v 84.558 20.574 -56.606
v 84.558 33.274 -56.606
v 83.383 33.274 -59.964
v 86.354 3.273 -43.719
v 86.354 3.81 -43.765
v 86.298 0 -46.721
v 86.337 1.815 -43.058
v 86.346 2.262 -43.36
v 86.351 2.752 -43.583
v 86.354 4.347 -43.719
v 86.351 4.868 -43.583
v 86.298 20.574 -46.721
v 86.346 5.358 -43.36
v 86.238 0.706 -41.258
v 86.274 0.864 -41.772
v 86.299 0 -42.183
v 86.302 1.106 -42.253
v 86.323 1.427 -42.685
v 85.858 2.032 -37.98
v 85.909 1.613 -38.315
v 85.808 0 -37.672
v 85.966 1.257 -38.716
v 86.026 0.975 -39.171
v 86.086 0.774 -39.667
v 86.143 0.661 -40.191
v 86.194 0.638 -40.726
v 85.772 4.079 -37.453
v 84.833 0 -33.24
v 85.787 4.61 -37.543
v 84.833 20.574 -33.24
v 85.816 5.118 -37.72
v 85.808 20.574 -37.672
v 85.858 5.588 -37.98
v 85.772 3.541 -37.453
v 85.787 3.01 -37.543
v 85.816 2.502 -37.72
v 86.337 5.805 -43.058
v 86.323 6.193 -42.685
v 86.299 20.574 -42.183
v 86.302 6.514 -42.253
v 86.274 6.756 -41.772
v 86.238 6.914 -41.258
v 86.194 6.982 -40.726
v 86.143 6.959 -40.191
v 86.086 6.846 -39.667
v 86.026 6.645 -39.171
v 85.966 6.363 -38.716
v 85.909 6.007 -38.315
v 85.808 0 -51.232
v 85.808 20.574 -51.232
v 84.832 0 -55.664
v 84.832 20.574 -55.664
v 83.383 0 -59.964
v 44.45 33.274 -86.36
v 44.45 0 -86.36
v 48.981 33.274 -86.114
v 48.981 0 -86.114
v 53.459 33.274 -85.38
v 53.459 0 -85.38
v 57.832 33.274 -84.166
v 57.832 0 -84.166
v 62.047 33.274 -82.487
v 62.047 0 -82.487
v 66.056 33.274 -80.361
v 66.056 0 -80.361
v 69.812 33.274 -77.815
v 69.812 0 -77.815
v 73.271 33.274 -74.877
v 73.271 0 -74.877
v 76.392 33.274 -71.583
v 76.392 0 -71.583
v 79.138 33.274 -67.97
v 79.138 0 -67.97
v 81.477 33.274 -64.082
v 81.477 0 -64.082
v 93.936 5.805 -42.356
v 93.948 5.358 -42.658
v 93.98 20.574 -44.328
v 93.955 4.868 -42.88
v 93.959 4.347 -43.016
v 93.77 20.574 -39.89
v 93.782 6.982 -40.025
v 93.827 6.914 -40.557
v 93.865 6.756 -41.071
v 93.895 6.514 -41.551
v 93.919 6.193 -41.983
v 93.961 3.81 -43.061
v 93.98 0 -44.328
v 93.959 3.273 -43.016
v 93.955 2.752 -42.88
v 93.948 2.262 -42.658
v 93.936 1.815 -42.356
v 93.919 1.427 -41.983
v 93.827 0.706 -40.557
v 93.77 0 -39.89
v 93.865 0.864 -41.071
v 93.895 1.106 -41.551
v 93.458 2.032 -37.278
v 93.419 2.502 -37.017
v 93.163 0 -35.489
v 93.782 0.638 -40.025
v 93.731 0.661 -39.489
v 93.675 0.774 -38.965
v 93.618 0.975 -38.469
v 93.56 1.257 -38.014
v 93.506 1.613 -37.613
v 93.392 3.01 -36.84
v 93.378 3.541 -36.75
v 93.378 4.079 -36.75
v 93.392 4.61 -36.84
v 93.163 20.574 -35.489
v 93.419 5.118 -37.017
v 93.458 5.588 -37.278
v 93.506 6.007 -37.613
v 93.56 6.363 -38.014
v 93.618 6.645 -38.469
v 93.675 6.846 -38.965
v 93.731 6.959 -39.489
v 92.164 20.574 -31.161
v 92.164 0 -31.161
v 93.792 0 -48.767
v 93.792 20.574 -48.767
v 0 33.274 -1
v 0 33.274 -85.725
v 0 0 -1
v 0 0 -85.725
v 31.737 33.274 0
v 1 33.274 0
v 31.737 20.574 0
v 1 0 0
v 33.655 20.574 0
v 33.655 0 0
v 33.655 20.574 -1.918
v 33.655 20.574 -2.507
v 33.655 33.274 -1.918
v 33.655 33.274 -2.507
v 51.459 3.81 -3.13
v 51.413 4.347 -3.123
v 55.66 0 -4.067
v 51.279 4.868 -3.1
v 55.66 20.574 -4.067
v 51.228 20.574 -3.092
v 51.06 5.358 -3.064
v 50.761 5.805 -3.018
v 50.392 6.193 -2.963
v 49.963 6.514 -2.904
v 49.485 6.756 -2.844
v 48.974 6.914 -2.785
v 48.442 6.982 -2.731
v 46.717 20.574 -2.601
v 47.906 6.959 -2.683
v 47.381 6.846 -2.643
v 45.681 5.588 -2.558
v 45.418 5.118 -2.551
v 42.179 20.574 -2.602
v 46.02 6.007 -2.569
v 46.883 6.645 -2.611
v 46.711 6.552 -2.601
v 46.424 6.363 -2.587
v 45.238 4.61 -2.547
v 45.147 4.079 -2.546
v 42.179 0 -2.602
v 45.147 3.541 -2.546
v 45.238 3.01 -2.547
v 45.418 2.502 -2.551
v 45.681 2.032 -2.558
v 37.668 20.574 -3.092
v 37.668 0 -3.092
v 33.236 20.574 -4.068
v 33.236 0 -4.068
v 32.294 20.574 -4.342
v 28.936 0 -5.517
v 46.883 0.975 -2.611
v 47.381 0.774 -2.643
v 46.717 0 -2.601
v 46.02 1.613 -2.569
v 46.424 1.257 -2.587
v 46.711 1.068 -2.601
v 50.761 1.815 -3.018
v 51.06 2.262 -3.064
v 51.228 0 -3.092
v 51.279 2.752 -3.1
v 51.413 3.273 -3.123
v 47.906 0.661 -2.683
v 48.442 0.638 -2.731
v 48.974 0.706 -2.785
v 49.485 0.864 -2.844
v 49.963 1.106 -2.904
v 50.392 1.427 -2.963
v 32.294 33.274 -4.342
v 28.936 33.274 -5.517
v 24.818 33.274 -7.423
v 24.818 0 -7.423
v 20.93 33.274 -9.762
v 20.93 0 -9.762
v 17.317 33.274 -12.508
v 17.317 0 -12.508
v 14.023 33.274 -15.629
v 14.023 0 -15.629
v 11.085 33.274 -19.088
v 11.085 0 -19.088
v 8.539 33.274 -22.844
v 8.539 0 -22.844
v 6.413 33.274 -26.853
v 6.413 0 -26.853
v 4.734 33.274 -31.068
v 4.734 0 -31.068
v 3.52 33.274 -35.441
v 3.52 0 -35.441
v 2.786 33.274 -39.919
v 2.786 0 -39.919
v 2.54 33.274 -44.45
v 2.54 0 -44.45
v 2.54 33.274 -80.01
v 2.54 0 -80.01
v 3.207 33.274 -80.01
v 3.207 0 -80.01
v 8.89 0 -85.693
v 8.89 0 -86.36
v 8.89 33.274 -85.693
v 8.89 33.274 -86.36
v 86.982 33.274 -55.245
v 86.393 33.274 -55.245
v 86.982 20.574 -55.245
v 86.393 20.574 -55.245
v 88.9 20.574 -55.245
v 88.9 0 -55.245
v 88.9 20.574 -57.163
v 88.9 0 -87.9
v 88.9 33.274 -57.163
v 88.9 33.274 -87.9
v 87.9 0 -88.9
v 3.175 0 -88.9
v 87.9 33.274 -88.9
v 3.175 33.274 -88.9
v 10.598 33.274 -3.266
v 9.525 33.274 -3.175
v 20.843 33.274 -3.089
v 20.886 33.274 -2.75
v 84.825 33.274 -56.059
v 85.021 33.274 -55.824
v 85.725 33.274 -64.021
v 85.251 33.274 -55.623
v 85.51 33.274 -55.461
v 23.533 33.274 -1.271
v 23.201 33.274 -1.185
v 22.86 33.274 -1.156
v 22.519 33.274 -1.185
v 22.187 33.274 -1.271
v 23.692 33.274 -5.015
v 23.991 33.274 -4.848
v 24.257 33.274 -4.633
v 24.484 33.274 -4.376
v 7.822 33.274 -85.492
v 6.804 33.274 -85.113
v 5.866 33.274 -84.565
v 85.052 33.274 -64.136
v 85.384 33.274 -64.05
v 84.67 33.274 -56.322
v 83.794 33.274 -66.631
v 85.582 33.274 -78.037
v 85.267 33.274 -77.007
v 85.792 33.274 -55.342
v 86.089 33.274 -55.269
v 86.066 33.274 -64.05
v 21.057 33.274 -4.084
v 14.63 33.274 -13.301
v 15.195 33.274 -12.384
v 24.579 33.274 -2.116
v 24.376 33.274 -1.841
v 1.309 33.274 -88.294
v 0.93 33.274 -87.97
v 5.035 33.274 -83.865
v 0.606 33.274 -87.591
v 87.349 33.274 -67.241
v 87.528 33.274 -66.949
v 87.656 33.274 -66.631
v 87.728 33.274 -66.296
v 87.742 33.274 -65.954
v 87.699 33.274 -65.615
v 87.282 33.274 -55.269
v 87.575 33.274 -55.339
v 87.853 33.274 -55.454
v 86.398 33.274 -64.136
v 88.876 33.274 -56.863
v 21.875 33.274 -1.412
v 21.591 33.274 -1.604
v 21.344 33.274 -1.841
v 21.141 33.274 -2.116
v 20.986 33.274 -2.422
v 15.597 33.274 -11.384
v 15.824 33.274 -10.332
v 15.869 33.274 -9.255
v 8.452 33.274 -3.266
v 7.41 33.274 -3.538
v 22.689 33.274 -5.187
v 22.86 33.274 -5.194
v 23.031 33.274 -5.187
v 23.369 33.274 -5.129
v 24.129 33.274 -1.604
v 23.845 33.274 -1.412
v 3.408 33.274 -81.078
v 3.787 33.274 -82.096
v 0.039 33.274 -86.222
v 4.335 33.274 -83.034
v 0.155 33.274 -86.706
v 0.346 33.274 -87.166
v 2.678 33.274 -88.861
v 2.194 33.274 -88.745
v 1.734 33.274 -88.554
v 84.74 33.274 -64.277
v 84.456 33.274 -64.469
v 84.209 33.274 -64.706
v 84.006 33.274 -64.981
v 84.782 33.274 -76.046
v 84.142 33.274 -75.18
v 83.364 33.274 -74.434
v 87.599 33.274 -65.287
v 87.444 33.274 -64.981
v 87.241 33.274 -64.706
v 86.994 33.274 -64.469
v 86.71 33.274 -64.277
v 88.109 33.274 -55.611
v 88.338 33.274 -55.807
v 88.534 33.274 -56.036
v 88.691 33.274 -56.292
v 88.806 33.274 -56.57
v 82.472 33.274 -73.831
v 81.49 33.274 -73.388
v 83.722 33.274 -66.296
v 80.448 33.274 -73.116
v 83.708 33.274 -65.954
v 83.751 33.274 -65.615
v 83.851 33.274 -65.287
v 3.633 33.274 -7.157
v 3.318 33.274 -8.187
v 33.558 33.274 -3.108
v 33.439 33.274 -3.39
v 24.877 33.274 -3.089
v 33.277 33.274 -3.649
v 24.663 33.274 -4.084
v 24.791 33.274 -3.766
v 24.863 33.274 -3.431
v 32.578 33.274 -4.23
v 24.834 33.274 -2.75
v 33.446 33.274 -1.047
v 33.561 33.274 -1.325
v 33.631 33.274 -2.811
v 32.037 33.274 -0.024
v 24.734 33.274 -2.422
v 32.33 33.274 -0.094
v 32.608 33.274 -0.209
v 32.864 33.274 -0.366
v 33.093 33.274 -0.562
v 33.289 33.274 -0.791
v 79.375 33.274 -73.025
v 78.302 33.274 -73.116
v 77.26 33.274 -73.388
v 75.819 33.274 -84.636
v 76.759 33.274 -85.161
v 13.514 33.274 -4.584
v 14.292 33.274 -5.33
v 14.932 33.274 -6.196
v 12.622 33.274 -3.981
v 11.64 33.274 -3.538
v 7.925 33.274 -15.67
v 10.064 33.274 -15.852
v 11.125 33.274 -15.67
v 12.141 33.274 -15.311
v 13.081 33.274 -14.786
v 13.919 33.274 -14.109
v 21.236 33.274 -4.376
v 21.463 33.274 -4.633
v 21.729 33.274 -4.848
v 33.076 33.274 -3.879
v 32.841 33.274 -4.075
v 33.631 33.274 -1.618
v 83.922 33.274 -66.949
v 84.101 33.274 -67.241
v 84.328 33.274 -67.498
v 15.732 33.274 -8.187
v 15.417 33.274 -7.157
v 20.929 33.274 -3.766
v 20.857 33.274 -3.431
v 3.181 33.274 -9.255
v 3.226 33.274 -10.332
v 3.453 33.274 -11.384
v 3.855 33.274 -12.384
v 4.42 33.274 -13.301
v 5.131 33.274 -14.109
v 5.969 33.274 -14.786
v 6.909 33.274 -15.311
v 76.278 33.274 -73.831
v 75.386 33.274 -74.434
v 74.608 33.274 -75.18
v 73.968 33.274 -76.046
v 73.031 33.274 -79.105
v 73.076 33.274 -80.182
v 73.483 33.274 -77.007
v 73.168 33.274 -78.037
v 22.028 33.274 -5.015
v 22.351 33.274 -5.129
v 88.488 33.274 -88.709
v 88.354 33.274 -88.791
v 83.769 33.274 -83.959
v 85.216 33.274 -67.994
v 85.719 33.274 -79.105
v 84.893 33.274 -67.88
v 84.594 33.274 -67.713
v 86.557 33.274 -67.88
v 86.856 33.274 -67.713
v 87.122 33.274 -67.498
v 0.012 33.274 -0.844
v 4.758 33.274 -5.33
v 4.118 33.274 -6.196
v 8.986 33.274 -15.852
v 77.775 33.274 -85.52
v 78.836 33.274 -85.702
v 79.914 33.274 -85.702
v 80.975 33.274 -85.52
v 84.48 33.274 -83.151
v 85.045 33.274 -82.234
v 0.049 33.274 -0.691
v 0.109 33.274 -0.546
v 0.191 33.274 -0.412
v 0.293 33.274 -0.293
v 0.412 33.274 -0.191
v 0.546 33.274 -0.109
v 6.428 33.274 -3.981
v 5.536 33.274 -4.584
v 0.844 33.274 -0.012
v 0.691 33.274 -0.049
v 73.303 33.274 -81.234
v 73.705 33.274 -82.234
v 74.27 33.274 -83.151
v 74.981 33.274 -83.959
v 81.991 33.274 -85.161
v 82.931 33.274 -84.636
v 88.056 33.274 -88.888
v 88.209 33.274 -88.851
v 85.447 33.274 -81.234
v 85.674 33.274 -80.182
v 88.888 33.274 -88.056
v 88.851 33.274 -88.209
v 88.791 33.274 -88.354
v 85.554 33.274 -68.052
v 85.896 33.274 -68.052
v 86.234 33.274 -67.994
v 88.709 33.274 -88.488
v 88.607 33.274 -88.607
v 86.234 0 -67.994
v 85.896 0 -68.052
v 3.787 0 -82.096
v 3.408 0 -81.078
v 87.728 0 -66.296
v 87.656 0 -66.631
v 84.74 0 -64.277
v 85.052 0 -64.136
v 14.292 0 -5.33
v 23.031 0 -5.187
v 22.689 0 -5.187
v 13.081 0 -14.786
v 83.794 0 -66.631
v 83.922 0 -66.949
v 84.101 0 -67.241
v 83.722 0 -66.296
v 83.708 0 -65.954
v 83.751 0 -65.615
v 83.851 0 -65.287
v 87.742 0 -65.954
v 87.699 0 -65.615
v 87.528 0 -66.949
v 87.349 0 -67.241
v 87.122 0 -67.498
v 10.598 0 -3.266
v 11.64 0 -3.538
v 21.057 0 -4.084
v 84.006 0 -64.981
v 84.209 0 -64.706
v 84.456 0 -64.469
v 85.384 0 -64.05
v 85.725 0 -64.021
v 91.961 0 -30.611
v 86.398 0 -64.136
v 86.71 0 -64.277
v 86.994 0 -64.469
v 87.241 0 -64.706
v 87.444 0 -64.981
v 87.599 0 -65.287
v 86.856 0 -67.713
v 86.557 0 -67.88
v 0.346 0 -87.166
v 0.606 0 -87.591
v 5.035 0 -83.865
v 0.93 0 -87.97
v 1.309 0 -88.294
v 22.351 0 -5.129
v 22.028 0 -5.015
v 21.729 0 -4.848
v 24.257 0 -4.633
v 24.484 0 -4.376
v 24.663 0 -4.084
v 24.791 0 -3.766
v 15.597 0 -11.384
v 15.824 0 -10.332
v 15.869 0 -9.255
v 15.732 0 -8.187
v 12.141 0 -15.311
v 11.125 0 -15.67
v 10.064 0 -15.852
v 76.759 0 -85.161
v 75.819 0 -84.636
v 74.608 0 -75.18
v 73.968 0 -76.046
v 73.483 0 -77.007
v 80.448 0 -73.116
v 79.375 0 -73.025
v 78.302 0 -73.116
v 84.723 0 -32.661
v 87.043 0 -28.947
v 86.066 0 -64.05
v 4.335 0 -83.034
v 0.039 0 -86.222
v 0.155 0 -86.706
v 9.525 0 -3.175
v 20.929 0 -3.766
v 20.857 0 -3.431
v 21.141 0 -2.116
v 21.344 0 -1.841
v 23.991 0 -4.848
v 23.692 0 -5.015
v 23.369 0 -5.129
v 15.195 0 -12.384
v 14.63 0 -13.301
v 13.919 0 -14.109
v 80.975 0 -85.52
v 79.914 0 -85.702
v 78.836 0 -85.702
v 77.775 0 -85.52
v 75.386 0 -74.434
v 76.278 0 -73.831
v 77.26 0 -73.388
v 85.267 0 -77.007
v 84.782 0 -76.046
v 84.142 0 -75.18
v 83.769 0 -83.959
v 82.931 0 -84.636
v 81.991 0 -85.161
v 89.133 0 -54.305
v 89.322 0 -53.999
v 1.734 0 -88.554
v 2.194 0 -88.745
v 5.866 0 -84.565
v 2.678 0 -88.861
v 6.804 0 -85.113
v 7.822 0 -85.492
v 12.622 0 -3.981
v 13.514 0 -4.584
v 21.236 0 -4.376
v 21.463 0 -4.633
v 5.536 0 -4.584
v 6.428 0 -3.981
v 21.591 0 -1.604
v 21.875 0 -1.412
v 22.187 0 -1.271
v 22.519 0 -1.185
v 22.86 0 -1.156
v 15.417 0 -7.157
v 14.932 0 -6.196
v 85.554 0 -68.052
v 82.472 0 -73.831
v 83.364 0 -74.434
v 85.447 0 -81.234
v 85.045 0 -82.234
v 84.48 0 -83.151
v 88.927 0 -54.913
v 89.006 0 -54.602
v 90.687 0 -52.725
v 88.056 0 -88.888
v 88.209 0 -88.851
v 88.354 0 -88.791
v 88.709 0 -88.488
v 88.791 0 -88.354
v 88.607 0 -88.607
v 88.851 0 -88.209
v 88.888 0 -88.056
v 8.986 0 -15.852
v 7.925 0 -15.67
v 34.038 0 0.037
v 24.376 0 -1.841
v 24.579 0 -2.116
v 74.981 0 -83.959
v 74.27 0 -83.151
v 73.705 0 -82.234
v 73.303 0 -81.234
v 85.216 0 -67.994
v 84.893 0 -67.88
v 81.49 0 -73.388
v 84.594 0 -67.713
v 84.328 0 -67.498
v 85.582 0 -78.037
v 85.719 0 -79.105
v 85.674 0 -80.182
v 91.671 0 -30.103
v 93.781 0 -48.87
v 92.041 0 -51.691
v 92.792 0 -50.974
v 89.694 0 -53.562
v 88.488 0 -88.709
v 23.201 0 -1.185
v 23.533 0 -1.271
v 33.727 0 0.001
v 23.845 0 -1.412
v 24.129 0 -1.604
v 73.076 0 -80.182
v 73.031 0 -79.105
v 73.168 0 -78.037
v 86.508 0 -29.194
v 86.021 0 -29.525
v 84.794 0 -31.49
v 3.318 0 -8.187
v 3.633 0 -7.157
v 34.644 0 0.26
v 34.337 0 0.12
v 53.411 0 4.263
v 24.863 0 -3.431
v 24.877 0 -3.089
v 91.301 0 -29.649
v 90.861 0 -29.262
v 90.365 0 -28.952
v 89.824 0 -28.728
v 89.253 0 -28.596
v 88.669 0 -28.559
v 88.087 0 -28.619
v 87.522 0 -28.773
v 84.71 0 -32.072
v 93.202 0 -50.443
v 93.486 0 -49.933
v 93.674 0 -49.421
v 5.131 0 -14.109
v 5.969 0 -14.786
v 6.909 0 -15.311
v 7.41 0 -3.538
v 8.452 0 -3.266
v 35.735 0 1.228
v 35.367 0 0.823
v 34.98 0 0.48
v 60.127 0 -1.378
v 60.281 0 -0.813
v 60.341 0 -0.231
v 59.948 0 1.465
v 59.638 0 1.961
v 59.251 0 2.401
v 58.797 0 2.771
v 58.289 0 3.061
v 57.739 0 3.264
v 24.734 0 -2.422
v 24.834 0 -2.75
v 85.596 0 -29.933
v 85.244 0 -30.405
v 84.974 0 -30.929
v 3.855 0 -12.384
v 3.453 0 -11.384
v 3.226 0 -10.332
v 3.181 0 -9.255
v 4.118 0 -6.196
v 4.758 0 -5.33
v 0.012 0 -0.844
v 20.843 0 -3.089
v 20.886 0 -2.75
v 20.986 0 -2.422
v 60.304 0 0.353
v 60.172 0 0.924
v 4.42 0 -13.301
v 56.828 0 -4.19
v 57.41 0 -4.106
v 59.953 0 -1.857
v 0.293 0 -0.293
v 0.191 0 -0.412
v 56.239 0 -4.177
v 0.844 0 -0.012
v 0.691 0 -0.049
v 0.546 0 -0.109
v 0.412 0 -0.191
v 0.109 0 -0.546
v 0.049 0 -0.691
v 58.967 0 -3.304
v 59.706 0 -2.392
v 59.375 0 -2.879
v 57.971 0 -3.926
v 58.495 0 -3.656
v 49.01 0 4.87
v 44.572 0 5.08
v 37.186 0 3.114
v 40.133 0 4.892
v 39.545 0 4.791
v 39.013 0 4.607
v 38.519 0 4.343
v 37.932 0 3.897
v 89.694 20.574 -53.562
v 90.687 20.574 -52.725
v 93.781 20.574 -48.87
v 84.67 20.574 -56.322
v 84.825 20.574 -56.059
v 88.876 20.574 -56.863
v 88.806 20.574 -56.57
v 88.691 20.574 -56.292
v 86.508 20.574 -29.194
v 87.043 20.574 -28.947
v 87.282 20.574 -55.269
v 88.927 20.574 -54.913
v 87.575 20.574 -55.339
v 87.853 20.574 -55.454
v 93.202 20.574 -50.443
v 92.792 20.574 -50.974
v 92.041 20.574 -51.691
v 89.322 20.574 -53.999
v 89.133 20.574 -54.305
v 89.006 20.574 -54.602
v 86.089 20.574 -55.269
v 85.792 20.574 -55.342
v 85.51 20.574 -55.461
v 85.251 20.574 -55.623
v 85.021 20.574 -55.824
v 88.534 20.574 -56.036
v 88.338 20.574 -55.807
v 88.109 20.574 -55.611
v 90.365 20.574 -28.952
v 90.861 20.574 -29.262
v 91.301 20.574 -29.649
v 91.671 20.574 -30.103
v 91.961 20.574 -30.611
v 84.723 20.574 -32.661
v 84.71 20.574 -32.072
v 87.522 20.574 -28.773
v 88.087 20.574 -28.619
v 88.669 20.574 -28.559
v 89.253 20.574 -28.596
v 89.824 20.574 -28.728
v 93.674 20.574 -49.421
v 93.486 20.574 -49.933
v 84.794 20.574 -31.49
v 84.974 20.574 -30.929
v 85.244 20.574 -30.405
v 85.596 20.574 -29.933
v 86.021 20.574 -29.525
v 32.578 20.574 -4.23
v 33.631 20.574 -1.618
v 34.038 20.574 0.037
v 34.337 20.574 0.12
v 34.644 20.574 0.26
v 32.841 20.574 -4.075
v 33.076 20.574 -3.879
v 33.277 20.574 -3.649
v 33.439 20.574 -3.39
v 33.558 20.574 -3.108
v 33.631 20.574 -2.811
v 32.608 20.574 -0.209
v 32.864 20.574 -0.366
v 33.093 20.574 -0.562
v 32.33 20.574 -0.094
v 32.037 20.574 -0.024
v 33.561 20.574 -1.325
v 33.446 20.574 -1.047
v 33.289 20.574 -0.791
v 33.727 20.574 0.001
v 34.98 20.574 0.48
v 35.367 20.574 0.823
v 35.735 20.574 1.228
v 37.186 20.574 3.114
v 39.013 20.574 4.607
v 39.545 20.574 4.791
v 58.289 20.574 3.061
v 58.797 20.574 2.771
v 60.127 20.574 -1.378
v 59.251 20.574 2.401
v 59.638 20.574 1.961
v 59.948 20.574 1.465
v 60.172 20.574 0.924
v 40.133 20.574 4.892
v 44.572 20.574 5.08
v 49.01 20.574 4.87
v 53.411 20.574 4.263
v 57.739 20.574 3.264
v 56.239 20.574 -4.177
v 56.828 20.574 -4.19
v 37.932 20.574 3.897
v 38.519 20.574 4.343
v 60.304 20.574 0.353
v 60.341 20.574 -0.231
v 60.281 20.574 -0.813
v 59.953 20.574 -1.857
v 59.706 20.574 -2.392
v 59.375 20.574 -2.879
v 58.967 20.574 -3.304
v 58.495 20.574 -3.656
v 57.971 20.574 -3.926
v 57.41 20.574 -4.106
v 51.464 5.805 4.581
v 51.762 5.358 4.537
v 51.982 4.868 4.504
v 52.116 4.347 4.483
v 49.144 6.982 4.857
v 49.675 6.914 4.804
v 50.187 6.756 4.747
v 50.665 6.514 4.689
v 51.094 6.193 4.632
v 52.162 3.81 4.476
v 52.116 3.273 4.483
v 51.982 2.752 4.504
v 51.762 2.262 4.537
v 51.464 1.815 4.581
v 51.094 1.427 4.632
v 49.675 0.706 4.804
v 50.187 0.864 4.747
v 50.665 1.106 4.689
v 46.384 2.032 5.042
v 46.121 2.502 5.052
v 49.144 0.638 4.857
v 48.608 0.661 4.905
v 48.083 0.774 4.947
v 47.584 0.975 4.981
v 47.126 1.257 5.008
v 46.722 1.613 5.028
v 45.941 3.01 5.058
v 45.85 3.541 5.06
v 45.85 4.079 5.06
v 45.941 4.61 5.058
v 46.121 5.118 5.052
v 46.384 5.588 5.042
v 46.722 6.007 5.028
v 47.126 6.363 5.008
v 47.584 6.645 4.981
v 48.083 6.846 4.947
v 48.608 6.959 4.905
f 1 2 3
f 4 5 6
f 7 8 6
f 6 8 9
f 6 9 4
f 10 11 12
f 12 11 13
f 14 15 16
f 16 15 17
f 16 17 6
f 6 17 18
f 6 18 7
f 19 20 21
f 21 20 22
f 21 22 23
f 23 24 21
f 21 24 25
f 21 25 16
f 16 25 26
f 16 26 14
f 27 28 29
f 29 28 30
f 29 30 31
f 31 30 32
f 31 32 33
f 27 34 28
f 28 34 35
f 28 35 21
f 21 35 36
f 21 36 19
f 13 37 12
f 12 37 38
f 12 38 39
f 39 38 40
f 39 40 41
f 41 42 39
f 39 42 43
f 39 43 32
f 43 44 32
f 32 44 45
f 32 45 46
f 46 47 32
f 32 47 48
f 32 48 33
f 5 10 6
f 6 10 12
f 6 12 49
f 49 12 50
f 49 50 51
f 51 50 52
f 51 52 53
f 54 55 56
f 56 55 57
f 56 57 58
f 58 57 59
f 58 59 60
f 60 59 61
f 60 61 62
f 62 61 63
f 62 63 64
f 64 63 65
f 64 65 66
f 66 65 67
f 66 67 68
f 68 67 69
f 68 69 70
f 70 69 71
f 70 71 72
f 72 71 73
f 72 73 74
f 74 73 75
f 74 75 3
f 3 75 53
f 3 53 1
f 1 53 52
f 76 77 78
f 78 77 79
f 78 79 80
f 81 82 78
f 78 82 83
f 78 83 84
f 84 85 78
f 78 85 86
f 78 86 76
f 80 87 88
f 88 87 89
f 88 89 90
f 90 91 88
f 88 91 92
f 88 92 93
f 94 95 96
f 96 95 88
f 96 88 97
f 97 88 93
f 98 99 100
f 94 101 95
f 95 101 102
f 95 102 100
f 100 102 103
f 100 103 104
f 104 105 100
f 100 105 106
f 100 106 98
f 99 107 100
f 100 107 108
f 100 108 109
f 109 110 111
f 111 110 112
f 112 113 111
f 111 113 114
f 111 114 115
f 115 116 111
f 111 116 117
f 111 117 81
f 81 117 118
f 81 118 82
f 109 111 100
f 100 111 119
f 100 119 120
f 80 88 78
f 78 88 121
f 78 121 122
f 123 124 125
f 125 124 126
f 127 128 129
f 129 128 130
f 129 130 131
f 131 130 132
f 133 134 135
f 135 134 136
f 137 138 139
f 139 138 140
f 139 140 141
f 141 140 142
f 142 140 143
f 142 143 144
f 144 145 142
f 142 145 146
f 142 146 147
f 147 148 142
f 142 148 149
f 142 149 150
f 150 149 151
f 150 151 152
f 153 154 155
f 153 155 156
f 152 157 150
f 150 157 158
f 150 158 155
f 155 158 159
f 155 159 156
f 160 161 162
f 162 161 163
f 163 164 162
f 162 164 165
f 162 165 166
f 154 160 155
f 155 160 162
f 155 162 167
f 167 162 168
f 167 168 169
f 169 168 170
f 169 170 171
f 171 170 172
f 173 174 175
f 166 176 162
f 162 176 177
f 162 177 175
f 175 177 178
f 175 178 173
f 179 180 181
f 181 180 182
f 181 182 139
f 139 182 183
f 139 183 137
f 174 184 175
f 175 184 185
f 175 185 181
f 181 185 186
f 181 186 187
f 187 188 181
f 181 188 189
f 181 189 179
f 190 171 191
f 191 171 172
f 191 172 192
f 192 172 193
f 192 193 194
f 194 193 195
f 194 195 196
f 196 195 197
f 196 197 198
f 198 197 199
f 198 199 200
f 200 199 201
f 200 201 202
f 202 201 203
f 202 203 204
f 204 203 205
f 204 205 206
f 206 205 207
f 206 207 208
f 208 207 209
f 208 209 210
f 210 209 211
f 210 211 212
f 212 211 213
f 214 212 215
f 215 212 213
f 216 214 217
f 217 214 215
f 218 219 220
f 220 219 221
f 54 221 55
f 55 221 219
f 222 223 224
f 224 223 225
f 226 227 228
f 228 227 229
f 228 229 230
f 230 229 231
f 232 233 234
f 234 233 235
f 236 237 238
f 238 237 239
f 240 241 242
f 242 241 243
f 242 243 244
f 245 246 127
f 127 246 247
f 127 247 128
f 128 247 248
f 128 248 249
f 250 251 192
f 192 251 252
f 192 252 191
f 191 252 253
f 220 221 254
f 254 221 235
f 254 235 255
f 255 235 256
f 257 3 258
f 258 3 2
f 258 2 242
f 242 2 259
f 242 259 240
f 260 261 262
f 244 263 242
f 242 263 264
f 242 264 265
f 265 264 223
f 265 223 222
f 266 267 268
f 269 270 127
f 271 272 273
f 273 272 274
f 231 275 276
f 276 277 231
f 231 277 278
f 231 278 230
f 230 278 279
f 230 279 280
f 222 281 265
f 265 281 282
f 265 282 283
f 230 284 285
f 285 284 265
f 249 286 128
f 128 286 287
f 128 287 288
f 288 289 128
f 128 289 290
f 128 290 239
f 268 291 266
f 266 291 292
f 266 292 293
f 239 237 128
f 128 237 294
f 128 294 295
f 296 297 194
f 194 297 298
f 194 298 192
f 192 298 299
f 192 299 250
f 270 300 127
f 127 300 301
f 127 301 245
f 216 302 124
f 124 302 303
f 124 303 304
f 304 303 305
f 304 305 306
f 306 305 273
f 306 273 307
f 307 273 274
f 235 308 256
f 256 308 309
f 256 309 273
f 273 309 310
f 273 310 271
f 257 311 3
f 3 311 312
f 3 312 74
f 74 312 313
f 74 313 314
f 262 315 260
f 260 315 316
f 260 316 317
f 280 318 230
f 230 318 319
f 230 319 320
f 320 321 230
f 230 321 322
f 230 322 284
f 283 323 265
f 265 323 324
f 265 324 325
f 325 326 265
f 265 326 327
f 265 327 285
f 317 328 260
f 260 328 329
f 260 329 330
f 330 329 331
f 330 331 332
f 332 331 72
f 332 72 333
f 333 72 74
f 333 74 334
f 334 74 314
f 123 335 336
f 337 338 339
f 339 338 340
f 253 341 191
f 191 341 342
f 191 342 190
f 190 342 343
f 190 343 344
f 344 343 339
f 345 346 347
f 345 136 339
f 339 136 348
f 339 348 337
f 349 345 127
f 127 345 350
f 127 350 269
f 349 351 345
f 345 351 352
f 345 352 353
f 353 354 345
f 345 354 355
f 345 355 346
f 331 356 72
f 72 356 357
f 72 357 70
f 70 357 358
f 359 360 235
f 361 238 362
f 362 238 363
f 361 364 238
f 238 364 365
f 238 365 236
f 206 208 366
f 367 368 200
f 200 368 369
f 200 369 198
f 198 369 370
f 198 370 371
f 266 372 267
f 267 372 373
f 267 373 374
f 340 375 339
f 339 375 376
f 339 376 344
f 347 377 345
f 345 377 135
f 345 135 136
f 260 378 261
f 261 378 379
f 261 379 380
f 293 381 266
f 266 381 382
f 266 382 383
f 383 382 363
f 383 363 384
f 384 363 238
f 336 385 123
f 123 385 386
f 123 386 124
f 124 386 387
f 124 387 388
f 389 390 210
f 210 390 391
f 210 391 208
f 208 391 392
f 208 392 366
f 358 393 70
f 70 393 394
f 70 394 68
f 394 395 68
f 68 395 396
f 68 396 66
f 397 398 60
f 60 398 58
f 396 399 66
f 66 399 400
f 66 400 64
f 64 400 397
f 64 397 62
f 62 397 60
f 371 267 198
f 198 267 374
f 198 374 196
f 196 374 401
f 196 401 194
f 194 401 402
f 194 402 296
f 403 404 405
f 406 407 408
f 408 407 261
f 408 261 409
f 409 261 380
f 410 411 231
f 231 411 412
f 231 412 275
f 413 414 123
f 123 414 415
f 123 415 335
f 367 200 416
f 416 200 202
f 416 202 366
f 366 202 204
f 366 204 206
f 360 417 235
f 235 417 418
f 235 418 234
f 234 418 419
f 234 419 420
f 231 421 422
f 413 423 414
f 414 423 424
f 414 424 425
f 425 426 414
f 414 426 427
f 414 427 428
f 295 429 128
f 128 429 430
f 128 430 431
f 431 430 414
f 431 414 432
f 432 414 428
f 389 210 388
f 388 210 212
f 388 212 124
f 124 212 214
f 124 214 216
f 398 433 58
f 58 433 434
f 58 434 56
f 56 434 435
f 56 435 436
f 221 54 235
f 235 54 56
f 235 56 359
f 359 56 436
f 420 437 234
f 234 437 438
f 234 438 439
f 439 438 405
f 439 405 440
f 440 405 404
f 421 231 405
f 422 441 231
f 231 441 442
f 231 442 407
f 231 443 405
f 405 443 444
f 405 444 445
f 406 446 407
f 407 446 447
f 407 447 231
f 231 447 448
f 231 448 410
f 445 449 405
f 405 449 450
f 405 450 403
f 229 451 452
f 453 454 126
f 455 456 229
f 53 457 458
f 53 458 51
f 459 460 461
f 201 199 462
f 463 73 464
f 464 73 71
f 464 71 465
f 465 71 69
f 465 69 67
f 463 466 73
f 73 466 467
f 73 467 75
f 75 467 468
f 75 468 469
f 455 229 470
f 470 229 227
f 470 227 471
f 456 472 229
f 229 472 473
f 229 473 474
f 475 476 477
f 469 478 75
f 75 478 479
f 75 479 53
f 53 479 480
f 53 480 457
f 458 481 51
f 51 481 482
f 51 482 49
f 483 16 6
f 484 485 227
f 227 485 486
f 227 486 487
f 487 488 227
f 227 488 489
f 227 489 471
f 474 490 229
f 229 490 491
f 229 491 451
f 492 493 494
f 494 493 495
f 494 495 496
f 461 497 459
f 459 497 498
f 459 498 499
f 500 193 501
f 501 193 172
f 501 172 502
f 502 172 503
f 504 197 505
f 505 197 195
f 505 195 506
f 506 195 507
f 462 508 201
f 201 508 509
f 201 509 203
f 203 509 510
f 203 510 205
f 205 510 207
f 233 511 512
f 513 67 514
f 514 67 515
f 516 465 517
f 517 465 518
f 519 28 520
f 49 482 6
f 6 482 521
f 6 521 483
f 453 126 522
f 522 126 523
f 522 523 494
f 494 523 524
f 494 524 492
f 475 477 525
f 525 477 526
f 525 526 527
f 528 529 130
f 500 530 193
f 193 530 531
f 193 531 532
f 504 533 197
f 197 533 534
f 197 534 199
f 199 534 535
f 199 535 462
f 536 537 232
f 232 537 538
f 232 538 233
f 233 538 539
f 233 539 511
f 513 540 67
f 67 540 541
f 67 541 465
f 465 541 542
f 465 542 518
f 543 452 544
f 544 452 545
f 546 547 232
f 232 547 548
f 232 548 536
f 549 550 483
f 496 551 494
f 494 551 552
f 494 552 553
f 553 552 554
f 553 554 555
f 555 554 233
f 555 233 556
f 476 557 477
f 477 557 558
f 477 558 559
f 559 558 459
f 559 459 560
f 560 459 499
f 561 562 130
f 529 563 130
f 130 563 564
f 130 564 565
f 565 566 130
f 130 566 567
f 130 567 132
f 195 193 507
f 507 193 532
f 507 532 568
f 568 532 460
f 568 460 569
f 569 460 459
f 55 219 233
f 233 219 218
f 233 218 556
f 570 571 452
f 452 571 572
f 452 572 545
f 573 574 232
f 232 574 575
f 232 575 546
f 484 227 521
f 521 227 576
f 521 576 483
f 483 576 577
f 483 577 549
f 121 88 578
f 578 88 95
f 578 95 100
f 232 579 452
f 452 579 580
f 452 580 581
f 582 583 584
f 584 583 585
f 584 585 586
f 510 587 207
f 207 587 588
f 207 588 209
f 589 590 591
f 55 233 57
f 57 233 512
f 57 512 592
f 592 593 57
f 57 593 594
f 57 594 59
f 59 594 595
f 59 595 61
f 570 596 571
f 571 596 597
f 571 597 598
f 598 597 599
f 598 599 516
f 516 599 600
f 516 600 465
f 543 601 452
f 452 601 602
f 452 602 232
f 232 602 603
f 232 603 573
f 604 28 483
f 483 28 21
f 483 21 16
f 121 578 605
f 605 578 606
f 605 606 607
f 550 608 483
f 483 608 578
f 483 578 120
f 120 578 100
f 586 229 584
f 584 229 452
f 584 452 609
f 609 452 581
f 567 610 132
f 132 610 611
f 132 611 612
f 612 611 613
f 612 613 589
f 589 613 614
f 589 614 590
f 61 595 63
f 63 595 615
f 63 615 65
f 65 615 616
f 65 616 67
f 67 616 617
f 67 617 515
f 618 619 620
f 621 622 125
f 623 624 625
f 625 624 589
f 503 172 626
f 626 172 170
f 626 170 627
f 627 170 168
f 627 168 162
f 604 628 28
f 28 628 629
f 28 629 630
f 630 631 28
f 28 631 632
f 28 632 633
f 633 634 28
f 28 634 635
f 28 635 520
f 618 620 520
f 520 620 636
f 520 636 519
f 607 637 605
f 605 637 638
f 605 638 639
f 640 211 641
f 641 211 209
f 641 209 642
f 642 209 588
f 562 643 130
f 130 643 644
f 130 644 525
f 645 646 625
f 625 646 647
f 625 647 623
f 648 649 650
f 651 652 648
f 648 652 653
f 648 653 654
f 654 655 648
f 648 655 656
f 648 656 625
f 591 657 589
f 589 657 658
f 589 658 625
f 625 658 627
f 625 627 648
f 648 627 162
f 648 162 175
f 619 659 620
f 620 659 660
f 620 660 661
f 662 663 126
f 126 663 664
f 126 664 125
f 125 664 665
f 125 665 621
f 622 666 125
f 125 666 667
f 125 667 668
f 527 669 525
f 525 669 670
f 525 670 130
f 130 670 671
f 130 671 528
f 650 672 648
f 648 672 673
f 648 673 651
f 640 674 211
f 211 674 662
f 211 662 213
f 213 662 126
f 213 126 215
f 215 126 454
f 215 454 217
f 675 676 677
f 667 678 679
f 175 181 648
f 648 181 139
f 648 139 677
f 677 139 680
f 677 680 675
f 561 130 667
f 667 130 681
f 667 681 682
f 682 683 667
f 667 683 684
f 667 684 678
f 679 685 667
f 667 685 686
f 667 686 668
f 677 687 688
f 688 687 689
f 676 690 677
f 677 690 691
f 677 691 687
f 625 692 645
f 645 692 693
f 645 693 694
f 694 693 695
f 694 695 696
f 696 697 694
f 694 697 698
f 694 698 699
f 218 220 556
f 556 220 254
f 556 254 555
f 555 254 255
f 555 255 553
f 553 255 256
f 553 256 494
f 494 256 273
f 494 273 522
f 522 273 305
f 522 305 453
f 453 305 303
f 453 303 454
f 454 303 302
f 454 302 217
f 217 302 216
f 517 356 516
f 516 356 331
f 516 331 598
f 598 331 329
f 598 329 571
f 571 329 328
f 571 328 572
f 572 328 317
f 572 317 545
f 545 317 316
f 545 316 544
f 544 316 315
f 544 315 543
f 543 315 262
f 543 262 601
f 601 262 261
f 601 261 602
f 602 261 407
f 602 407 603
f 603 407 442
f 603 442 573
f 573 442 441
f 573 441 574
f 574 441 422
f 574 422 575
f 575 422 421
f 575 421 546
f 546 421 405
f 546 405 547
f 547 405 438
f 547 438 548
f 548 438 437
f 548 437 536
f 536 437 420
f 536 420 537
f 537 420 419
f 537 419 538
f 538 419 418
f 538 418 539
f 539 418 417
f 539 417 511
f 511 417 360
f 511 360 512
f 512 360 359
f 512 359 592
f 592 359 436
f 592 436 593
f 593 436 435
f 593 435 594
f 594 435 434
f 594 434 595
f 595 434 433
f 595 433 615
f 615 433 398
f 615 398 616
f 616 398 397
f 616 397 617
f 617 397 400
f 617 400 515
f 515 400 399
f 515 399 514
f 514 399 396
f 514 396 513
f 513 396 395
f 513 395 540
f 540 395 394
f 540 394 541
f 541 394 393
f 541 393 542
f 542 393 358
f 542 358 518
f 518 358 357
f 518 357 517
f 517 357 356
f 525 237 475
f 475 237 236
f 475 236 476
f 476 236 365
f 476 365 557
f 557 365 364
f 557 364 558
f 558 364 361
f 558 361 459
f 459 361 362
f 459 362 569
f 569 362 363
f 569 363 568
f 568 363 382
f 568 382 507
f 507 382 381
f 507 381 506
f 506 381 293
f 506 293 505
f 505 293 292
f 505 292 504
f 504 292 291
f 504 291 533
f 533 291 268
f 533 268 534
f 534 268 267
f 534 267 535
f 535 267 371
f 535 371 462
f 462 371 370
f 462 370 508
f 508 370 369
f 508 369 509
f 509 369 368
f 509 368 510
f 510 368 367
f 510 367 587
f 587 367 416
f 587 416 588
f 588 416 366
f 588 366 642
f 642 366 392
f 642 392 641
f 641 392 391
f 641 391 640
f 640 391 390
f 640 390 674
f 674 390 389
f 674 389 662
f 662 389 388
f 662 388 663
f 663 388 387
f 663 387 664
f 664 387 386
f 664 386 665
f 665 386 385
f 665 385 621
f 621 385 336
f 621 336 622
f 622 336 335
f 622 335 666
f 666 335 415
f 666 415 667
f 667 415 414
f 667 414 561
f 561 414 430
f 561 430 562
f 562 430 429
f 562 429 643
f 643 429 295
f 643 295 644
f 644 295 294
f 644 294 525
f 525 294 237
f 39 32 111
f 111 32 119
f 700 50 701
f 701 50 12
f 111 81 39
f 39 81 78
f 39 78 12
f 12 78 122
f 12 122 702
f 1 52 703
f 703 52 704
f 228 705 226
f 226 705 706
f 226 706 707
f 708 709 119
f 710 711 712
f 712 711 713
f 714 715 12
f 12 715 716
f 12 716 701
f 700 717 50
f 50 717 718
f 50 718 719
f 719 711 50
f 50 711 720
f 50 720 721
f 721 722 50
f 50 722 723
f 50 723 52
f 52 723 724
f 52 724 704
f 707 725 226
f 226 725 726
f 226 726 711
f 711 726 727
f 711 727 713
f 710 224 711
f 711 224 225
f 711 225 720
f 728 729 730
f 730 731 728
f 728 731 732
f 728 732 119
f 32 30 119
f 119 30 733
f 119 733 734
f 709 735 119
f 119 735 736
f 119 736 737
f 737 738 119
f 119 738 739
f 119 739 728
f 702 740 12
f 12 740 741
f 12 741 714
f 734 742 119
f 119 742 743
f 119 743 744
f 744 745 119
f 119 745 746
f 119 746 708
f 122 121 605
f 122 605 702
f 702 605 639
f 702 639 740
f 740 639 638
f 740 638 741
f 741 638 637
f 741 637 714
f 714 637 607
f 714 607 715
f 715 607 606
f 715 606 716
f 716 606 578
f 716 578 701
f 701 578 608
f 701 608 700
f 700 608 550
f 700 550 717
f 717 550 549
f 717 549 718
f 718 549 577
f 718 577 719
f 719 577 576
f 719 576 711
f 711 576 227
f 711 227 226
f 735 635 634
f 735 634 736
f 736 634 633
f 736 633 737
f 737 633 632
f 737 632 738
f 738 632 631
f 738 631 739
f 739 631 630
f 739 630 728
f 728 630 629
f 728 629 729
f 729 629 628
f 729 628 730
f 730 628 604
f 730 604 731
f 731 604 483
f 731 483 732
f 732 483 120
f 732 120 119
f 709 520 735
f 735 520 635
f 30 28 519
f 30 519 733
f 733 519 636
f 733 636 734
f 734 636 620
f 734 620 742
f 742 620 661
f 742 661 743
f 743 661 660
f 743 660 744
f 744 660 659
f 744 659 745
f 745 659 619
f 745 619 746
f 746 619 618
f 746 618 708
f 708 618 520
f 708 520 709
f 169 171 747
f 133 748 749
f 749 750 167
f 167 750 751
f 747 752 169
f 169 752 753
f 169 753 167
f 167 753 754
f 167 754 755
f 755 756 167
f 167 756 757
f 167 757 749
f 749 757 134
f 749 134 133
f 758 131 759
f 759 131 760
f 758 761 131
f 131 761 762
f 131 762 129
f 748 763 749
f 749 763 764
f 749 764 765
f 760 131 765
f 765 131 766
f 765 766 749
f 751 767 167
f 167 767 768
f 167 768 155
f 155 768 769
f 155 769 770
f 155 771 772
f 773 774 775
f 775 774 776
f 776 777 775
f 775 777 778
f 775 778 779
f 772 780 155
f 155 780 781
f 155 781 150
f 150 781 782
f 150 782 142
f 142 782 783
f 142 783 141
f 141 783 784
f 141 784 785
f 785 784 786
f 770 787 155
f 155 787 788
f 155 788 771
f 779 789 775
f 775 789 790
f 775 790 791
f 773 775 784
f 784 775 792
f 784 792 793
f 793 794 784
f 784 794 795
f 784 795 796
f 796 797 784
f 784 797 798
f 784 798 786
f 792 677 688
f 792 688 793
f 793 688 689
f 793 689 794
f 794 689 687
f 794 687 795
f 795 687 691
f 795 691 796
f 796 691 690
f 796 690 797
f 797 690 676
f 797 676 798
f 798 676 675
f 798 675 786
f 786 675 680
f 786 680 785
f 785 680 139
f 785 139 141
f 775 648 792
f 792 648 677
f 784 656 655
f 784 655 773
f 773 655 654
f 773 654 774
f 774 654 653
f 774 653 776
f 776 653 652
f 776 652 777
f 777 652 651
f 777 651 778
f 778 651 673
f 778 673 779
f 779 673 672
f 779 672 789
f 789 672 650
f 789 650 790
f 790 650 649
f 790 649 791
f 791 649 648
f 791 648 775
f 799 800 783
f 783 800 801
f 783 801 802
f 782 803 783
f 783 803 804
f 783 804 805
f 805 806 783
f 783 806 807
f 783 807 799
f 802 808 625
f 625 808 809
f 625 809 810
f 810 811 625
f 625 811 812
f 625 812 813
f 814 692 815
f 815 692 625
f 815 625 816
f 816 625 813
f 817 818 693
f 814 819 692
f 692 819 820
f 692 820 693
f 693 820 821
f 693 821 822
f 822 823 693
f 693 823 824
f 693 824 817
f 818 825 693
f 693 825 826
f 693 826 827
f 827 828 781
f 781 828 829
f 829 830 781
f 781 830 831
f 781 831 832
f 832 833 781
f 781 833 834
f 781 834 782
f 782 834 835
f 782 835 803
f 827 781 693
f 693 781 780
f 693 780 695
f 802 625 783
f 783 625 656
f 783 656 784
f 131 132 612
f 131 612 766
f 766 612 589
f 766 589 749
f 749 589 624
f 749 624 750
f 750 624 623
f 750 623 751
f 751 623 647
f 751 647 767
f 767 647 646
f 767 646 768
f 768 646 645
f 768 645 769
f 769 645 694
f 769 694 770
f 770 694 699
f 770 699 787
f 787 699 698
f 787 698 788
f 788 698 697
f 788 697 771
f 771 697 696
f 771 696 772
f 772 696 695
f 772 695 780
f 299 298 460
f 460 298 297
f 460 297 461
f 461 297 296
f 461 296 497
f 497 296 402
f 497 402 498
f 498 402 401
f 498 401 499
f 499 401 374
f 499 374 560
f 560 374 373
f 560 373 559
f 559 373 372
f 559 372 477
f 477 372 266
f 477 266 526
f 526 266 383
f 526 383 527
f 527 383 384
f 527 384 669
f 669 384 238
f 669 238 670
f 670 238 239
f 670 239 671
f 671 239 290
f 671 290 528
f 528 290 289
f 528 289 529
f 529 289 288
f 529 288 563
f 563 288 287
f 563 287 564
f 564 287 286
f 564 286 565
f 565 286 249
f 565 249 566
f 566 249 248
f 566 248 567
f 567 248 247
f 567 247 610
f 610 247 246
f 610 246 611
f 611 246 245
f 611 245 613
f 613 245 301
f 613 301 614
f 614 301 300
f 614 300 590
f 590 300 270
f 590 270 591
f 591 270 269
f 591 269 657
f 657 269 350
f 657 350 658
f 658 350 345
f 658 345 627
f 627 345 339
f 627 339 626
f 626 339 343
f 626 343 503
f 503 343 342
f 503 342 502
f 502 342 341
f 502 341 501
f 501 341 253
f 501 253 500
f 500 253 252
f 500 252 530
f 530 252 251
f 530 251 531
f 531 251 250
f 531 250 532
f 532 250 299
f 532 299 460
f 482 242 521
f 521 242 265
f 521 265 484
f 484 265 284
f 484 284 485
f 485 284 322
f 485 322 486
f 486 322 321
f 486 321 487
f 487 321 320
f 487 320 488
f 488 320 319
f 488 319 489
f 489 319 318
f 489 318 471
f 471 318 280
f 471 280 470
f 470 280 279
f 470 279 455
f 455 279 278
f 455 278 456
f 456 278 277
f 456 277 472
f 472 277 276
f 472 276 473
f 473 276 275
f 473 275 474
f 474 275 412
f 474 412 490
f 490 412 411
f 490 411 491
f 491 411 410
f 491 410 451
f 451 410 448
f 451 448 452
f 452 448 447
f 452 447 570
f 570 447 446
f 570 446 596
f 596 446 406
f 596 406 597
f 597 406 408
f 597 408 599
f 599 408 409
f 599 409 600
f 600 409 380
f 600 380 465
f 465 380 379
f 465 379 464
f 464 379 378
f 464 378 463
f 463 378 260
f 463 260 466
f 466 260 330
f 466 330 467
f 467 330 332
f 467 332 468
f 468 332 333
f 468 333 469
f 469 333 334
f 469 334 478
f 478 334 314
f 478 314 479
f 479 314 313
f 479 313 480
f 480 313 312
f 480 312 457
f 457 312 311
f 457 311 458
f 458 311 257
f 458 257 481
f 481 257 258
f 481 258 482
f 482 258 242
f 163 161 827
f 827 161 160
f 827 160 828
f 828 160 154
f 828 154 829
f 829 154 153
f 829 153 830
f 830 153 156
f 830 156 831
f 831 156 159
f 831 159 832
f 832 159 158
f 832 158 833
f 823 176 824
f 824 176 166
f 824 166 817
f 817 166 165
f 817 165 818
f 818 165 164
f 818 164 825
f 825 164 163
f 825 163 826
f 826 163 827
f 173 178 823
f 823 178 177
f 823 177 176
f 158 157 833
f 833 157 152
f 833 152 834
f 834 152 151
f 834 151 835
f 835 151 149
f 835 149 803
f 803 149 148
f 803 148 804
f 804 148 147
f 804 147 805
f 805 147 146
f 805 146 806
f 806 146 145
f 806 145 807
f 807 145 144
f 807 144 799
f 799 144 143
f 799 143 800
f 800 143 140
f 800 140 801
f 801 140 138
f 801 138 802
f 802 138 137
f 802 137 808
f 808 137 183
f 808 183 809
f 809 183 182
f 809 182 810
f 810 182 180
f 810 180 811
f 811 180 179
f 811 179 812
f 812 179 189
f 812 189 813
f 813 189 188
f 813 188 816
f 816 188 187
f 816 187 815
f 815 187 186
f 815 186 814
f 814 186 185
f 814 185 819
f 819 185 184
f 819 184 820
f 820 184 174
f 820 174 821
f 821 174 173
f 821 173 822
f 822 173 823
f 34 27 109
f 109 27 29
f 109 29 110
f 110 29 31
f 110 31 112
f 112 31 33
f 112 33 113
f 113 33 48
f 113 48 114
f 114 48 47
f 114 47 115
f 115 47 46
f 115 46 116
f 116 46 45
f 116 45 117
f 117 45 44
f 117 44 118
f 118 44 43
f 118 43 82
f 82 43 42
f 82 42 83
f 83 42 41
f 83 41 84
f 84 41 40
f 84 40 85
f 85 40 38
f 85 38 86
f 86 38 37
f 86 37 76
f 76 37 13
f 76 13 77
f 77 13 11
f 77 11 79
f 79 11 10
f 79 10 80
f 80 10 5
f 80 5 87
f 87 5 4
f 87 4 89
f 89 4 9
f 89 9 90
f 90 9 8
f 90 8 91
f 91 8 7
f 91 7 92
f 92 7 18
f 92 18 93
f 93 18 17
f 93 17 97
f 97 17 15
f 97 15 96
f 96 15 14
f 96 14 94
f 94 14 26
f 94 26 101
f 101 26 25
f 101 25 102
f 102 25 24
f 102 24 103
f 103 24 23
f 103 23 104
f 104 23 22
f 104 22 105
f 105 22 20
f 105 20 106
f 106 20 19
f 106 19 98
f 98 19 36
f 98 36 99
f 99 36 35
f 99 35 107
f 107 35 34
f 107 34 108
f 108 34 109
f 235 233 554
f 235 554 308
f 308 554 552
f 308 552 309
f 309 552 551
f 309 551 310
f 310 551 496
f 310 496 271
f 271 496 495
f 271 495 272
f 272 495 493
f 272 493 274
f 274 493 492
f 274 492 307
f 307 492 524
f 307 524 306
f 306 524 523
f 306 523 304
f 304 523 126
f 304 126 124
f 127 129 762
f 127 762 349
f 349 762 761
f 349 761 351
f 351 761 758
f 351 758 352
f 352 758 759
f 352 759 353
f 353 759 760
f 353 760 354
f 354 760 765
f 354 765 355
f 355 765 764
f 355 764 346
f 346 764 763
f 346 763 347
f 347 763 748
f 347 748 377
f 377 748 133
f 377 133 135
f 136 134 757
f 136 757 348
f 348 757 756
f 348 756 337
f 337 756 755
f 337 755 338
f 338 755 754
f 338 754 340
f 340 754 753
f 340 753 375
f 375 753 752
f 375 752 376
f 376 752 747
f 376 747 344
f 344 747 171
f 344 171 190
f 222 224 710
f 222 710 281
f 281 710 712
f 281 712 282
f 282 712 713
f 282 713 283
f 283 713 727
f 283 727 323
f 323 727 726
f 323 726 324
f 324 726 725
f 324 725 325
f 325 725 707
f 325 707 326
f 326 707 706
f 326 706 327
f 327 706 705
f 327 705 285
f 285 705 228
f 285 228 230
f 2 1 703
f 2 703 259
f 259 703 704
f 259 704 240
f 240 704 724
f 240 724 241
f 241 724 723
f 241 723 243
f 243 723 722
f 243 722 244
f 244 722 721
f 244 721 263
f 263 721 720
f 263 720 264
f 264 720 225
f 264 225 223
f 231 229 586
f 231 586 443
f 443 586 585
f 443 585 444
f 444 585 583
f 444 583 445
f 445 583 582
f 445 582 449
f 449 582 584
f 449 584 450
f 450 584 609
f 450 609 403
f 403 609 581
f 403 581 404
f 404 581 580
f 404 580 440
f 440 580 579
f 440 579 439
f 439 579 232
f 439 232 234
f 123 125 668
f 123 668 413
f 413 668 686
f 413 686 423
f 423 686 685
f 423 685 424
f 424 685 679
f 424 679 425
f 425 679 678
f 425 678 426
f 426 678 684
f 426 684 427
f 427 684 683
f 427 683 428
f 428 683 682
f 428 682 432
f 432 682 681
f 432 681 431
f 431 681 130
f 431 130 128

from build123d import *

# Parameters (mm, degrees)
BOSS_EXTRUDE1_DEPTH     = 33.274
SKETCH3_R               = 6.349999999999995
SKETCH3_R_2             = 6.349999999999994
SKETCH3_R_3             = 6.349999999999996
CUT_EXTRUDE1_DEPTH      = 131.05221672851255
BOSS_EXTRUDE2_DEPTH     = 20.574
SKETCH5_R               = 2.0193000000000074
SKETCH5_R_2             = 2.0193000000000025
CUT_EXTRUDE2_DEPTH      = 134.57623111628357
CUT_EXTRUDE3_REACH      = 109.787
CUT_EXTRUDE3_END_RADIUS = 41.90999999999999
SKETCH6_R               = 3.1750000000000003
FILLET1_R               = 3.175
FILLET2_R               = 1.9176999999999997
FILLET3_R               = 1


with BuildPart() as part:
    # Sketch1 → Boss-Extrude1 (new body)
    with BuildSketch(Plane(origin=(0, 0, 0), x_dir=(1, 0, 0), z_dir=(0, 1, 0))):
        with BuildLine():
            Line((0, 0), (33.655, 6.94e-15))
            Line((33.655, 6.94e-15), (33.655, 3.954122740703593))
            ThreePointArc((33.655, 3.954122740703593), (11.216985165351097, 18.91541903613836), (2.5400000000000076, 44.449999999999704))
            Line((2.5400000000000076, 44.449999999999704), (2.540000000000145, 80.00999999999985))
            Line((2.540000000000145, 80.00999999999985), (8.890000000000144, 80.00999999999985))
            Line((8.890000000000144, 80.00999999999985), (8.890000000000148, 86.36))
            Line((8.890000000000148, 86.36), (44.449999999999854, 86.35999999999999))
            ThreePointArc((44.449999999999854, 86.35999999999999), (69.98458096386148, 77.68301483464901), (84.9458772592964, 55.244999999999976))
            Line((84.9458772592964, 55.244999999999976), (88.89999999999999, 55.245))
            Line((88.89999999999999, 55.245), (88.89999999999999, 88.89999999999999))
            Line((88.89999999999999, 88.89999999999999), (0, 88.89999999999999))
            Line((0, 88.89999999999999), (0, 0))
        make_face()
    extrude(amount=BOSS_EXTRUDE1_DEPTH)

    # Sketch3 → Cut-Extrude1 (cut, through all)
    with BuildSketch(Plane(origin=(0, 33.274, 0), x_dir=(1, 0, 0), z_dir=(0, 1, 0))):
        with Locations((9.525000000000004, 79.37499999999999)):
            Circle(SKETCH3_R)
        with Locations(Location((79.375, 79.37499999999999, 0), (0, 0, 270))):
            Circle(SKETCH3_R_2)
        with Locations(Location((9.525000000000006, 9.524999999999991, 0), (0, 0, 270))):
            Circle(SKETCH3_R_3)
    extrude(amount=-CUT_EXTRUDE1_DEPTH, mode=Mode.SUBTRACT)

    # Sketch4 → Boss-Extrude2 (add)
    with BuildSketch(Plane.XZ):
        with BuildLine():
            Line((33.655, -6.94e-15), (33.65499999999999, -3.9541227407036))
            ThreePointArc((33.65499999999999, -3.9541227407036), (44.66502117576741, -2.5405515916282795), (55.65995813673013, -4.067021672829062))
            ThreePointArc((55.65995813673013, -4.067021672829062), (58.23891440878839, -3.8021336224280984), (59.95265305936133, -1.8568107777654739))
            Line((59.95265305936133, -1.8568107777654739), (60.12692723379523, -1.3779964187142884))
            ThreePointArc((60.12692723379523, -1.3779964187142884), (59.94763198470919, 1.464665073241983), (57.73949808555085, 3.263835945500561))
            ThreePointArc((57.73949808555085, 3.263835945500561), (49.009557209614336, 4.869685096848045), (40.13317606170841, 4.89152339648416))
            add(Edge.make_bspline(
                [(33.655, -6.94e-15), (36.19500000000001, -6.94e-15), (36.75939668417103, 4.596355947712086), (40.13317606170841, 4.89152339648416)],
                knots=[0, 0, 0, 0, 1, 1, 1, 1], degree=3))
        make_face()
        with BuildLine():
            Line((87.04318922223452, -28.94734694063866), (87.52200358128572, -28.77307276620477))
            ThreePointArc((87.52200358128572, -28.77307276620477), (90.364665073242, -28.952368015290805), (92.16383594550055, -31.160501914449153))
            ThreePointArc((92.16383594550055, -31.160501914449153), (93.76968509684802, -39.89044279038568), (93.79152339648414, -48.7668239382916))
            add(Edge.make_bspline(
                [(88.89999999999999, -55.245), (88.89999999999999, -52.705), (93.49635594771208, -52.140603315828955), (93.79152339648414, -48.7668239382916)],
                knots=[0, 0, 0, 0, 1, 1, 1, 1], degree=3))
            Line((88.89999999999999, -55.245), (84.9458772592964, -55.245))
            ThreePointArc((84.9458772592964, -55.245), (86.35944840837172, -44.23497882423258), (84.83297832717093, -33.240041863269866))
            ThreePointArc((84.83297832717093, -33.240041863269866), (85.09786637757189, -30.661085591211602), (87.04318922223452, -28.94734694063866))
        make_face()
    extrude(amount=-BOSS_EXTRUDE2_DEPTH)

    # Sketch5 → Cut-Extrude2 (cut, through all)
    with BuildSketch(Plane(origin=(0, 33.274, 0), x_dir=(1, 0, 0), z_dir=(0, 1, 0))):
        with Locations(Location((85.725, 66.03999999999999, 0), (0, 0, 270))):
            Circle(SKETCH5_R)
        with Locations(Location((22.860000000000007, 3.174999999999997, 0), (0, 0, 270))):
            Circle(SKETCH5_R_2)
    extrude(amount=-CUT_EXTRUDE2_DEPTH, mode=Mode.SUBTRACT)

    # Cut-Extrude3: up to this cylinder (the profile starts outside it)
    cut_extrude3_end = Plane(origin=(44.449999999999996, 3.8099999999999987, -44.449999999999996), z_dir=(0, -1, 0)) * Cylinder(CUT_EXTRUDE3_END_RADIUS, 304.394, mode=Mode.PRIVATE)
    # Sketch6 → Cut-Extrude3 (cut, up to the surface)
    with BuildSketch(Plane(origin=(49.00955720961435, 20.573999999999995, 4.869685096848044), x_dir=(0.9957537875398352, 0, -0.0920564750578304), z_dir=(0.0920564750578304, 0, 0.9957537875398352)), mode=Mode.PRIVATE) as cut_extrude3_sk1:
        with Locations((0, -16.763999999999996)):
            Circle(SKETCH6_R)
    cut_extrude3_tool1 = extrude(cut_extrude3_sk1.sketch, amount=-CUT_EXTRUDE3_REACH, mode=Mode.PRIVATE) - cut_extrude3_end
    cut_extrude3 = cut_extrude3_tool1.solids().sort_by_distance((49.009557, 3.81, 4.869685))[0]
    add(cut_extrude3, mode=Mode.SUBTRACT)

    # Mirror1: Cut-Extrude3 across plane
    add(cut_extrude3.mirror(Plane(origin=(44.449999999999996, 0, -44.449999999999996), x_dir=(0.7071067811865477, 0, 0.7071067811865474), z_dir=(-0.7071067811865476, 0, 0.7071067811865476))), mode=Mode.SUBTRACT)

    # Fillet1
    fillet1_edges = [part.edges().sort_by_distance(p)[0] for p in [
        (0, 16.637, -88.89999999999999),
    ]]
    fillet(fillet1_edges, radius=FILLET1_R)

    # Fillet2
    fillet2_edges = [part.edges().sort_by_distance(p)[0] for p in [
        (33.655, 26.924, -3.9541227407035944),
        (33.655, 26.924, -6.94e-15),
        (88.89999999999999, 26.924, -55.245),
        (84.9458772592964, 26.924, -55.244999999999976),
    ]]
    fillet(fillet2_edges, radius=FILLET2_R)

    # Fillet3
    fillet3_edges = [part.edges().sort_by_distance(p)[0] for p in [
        (88.89999999999999, 16.637, -88.89999999999999),
        (0, 16.637, 0),
    ]]
    fillet(fillet3_edges, radius=FILLET3_R)


solid = part.part
